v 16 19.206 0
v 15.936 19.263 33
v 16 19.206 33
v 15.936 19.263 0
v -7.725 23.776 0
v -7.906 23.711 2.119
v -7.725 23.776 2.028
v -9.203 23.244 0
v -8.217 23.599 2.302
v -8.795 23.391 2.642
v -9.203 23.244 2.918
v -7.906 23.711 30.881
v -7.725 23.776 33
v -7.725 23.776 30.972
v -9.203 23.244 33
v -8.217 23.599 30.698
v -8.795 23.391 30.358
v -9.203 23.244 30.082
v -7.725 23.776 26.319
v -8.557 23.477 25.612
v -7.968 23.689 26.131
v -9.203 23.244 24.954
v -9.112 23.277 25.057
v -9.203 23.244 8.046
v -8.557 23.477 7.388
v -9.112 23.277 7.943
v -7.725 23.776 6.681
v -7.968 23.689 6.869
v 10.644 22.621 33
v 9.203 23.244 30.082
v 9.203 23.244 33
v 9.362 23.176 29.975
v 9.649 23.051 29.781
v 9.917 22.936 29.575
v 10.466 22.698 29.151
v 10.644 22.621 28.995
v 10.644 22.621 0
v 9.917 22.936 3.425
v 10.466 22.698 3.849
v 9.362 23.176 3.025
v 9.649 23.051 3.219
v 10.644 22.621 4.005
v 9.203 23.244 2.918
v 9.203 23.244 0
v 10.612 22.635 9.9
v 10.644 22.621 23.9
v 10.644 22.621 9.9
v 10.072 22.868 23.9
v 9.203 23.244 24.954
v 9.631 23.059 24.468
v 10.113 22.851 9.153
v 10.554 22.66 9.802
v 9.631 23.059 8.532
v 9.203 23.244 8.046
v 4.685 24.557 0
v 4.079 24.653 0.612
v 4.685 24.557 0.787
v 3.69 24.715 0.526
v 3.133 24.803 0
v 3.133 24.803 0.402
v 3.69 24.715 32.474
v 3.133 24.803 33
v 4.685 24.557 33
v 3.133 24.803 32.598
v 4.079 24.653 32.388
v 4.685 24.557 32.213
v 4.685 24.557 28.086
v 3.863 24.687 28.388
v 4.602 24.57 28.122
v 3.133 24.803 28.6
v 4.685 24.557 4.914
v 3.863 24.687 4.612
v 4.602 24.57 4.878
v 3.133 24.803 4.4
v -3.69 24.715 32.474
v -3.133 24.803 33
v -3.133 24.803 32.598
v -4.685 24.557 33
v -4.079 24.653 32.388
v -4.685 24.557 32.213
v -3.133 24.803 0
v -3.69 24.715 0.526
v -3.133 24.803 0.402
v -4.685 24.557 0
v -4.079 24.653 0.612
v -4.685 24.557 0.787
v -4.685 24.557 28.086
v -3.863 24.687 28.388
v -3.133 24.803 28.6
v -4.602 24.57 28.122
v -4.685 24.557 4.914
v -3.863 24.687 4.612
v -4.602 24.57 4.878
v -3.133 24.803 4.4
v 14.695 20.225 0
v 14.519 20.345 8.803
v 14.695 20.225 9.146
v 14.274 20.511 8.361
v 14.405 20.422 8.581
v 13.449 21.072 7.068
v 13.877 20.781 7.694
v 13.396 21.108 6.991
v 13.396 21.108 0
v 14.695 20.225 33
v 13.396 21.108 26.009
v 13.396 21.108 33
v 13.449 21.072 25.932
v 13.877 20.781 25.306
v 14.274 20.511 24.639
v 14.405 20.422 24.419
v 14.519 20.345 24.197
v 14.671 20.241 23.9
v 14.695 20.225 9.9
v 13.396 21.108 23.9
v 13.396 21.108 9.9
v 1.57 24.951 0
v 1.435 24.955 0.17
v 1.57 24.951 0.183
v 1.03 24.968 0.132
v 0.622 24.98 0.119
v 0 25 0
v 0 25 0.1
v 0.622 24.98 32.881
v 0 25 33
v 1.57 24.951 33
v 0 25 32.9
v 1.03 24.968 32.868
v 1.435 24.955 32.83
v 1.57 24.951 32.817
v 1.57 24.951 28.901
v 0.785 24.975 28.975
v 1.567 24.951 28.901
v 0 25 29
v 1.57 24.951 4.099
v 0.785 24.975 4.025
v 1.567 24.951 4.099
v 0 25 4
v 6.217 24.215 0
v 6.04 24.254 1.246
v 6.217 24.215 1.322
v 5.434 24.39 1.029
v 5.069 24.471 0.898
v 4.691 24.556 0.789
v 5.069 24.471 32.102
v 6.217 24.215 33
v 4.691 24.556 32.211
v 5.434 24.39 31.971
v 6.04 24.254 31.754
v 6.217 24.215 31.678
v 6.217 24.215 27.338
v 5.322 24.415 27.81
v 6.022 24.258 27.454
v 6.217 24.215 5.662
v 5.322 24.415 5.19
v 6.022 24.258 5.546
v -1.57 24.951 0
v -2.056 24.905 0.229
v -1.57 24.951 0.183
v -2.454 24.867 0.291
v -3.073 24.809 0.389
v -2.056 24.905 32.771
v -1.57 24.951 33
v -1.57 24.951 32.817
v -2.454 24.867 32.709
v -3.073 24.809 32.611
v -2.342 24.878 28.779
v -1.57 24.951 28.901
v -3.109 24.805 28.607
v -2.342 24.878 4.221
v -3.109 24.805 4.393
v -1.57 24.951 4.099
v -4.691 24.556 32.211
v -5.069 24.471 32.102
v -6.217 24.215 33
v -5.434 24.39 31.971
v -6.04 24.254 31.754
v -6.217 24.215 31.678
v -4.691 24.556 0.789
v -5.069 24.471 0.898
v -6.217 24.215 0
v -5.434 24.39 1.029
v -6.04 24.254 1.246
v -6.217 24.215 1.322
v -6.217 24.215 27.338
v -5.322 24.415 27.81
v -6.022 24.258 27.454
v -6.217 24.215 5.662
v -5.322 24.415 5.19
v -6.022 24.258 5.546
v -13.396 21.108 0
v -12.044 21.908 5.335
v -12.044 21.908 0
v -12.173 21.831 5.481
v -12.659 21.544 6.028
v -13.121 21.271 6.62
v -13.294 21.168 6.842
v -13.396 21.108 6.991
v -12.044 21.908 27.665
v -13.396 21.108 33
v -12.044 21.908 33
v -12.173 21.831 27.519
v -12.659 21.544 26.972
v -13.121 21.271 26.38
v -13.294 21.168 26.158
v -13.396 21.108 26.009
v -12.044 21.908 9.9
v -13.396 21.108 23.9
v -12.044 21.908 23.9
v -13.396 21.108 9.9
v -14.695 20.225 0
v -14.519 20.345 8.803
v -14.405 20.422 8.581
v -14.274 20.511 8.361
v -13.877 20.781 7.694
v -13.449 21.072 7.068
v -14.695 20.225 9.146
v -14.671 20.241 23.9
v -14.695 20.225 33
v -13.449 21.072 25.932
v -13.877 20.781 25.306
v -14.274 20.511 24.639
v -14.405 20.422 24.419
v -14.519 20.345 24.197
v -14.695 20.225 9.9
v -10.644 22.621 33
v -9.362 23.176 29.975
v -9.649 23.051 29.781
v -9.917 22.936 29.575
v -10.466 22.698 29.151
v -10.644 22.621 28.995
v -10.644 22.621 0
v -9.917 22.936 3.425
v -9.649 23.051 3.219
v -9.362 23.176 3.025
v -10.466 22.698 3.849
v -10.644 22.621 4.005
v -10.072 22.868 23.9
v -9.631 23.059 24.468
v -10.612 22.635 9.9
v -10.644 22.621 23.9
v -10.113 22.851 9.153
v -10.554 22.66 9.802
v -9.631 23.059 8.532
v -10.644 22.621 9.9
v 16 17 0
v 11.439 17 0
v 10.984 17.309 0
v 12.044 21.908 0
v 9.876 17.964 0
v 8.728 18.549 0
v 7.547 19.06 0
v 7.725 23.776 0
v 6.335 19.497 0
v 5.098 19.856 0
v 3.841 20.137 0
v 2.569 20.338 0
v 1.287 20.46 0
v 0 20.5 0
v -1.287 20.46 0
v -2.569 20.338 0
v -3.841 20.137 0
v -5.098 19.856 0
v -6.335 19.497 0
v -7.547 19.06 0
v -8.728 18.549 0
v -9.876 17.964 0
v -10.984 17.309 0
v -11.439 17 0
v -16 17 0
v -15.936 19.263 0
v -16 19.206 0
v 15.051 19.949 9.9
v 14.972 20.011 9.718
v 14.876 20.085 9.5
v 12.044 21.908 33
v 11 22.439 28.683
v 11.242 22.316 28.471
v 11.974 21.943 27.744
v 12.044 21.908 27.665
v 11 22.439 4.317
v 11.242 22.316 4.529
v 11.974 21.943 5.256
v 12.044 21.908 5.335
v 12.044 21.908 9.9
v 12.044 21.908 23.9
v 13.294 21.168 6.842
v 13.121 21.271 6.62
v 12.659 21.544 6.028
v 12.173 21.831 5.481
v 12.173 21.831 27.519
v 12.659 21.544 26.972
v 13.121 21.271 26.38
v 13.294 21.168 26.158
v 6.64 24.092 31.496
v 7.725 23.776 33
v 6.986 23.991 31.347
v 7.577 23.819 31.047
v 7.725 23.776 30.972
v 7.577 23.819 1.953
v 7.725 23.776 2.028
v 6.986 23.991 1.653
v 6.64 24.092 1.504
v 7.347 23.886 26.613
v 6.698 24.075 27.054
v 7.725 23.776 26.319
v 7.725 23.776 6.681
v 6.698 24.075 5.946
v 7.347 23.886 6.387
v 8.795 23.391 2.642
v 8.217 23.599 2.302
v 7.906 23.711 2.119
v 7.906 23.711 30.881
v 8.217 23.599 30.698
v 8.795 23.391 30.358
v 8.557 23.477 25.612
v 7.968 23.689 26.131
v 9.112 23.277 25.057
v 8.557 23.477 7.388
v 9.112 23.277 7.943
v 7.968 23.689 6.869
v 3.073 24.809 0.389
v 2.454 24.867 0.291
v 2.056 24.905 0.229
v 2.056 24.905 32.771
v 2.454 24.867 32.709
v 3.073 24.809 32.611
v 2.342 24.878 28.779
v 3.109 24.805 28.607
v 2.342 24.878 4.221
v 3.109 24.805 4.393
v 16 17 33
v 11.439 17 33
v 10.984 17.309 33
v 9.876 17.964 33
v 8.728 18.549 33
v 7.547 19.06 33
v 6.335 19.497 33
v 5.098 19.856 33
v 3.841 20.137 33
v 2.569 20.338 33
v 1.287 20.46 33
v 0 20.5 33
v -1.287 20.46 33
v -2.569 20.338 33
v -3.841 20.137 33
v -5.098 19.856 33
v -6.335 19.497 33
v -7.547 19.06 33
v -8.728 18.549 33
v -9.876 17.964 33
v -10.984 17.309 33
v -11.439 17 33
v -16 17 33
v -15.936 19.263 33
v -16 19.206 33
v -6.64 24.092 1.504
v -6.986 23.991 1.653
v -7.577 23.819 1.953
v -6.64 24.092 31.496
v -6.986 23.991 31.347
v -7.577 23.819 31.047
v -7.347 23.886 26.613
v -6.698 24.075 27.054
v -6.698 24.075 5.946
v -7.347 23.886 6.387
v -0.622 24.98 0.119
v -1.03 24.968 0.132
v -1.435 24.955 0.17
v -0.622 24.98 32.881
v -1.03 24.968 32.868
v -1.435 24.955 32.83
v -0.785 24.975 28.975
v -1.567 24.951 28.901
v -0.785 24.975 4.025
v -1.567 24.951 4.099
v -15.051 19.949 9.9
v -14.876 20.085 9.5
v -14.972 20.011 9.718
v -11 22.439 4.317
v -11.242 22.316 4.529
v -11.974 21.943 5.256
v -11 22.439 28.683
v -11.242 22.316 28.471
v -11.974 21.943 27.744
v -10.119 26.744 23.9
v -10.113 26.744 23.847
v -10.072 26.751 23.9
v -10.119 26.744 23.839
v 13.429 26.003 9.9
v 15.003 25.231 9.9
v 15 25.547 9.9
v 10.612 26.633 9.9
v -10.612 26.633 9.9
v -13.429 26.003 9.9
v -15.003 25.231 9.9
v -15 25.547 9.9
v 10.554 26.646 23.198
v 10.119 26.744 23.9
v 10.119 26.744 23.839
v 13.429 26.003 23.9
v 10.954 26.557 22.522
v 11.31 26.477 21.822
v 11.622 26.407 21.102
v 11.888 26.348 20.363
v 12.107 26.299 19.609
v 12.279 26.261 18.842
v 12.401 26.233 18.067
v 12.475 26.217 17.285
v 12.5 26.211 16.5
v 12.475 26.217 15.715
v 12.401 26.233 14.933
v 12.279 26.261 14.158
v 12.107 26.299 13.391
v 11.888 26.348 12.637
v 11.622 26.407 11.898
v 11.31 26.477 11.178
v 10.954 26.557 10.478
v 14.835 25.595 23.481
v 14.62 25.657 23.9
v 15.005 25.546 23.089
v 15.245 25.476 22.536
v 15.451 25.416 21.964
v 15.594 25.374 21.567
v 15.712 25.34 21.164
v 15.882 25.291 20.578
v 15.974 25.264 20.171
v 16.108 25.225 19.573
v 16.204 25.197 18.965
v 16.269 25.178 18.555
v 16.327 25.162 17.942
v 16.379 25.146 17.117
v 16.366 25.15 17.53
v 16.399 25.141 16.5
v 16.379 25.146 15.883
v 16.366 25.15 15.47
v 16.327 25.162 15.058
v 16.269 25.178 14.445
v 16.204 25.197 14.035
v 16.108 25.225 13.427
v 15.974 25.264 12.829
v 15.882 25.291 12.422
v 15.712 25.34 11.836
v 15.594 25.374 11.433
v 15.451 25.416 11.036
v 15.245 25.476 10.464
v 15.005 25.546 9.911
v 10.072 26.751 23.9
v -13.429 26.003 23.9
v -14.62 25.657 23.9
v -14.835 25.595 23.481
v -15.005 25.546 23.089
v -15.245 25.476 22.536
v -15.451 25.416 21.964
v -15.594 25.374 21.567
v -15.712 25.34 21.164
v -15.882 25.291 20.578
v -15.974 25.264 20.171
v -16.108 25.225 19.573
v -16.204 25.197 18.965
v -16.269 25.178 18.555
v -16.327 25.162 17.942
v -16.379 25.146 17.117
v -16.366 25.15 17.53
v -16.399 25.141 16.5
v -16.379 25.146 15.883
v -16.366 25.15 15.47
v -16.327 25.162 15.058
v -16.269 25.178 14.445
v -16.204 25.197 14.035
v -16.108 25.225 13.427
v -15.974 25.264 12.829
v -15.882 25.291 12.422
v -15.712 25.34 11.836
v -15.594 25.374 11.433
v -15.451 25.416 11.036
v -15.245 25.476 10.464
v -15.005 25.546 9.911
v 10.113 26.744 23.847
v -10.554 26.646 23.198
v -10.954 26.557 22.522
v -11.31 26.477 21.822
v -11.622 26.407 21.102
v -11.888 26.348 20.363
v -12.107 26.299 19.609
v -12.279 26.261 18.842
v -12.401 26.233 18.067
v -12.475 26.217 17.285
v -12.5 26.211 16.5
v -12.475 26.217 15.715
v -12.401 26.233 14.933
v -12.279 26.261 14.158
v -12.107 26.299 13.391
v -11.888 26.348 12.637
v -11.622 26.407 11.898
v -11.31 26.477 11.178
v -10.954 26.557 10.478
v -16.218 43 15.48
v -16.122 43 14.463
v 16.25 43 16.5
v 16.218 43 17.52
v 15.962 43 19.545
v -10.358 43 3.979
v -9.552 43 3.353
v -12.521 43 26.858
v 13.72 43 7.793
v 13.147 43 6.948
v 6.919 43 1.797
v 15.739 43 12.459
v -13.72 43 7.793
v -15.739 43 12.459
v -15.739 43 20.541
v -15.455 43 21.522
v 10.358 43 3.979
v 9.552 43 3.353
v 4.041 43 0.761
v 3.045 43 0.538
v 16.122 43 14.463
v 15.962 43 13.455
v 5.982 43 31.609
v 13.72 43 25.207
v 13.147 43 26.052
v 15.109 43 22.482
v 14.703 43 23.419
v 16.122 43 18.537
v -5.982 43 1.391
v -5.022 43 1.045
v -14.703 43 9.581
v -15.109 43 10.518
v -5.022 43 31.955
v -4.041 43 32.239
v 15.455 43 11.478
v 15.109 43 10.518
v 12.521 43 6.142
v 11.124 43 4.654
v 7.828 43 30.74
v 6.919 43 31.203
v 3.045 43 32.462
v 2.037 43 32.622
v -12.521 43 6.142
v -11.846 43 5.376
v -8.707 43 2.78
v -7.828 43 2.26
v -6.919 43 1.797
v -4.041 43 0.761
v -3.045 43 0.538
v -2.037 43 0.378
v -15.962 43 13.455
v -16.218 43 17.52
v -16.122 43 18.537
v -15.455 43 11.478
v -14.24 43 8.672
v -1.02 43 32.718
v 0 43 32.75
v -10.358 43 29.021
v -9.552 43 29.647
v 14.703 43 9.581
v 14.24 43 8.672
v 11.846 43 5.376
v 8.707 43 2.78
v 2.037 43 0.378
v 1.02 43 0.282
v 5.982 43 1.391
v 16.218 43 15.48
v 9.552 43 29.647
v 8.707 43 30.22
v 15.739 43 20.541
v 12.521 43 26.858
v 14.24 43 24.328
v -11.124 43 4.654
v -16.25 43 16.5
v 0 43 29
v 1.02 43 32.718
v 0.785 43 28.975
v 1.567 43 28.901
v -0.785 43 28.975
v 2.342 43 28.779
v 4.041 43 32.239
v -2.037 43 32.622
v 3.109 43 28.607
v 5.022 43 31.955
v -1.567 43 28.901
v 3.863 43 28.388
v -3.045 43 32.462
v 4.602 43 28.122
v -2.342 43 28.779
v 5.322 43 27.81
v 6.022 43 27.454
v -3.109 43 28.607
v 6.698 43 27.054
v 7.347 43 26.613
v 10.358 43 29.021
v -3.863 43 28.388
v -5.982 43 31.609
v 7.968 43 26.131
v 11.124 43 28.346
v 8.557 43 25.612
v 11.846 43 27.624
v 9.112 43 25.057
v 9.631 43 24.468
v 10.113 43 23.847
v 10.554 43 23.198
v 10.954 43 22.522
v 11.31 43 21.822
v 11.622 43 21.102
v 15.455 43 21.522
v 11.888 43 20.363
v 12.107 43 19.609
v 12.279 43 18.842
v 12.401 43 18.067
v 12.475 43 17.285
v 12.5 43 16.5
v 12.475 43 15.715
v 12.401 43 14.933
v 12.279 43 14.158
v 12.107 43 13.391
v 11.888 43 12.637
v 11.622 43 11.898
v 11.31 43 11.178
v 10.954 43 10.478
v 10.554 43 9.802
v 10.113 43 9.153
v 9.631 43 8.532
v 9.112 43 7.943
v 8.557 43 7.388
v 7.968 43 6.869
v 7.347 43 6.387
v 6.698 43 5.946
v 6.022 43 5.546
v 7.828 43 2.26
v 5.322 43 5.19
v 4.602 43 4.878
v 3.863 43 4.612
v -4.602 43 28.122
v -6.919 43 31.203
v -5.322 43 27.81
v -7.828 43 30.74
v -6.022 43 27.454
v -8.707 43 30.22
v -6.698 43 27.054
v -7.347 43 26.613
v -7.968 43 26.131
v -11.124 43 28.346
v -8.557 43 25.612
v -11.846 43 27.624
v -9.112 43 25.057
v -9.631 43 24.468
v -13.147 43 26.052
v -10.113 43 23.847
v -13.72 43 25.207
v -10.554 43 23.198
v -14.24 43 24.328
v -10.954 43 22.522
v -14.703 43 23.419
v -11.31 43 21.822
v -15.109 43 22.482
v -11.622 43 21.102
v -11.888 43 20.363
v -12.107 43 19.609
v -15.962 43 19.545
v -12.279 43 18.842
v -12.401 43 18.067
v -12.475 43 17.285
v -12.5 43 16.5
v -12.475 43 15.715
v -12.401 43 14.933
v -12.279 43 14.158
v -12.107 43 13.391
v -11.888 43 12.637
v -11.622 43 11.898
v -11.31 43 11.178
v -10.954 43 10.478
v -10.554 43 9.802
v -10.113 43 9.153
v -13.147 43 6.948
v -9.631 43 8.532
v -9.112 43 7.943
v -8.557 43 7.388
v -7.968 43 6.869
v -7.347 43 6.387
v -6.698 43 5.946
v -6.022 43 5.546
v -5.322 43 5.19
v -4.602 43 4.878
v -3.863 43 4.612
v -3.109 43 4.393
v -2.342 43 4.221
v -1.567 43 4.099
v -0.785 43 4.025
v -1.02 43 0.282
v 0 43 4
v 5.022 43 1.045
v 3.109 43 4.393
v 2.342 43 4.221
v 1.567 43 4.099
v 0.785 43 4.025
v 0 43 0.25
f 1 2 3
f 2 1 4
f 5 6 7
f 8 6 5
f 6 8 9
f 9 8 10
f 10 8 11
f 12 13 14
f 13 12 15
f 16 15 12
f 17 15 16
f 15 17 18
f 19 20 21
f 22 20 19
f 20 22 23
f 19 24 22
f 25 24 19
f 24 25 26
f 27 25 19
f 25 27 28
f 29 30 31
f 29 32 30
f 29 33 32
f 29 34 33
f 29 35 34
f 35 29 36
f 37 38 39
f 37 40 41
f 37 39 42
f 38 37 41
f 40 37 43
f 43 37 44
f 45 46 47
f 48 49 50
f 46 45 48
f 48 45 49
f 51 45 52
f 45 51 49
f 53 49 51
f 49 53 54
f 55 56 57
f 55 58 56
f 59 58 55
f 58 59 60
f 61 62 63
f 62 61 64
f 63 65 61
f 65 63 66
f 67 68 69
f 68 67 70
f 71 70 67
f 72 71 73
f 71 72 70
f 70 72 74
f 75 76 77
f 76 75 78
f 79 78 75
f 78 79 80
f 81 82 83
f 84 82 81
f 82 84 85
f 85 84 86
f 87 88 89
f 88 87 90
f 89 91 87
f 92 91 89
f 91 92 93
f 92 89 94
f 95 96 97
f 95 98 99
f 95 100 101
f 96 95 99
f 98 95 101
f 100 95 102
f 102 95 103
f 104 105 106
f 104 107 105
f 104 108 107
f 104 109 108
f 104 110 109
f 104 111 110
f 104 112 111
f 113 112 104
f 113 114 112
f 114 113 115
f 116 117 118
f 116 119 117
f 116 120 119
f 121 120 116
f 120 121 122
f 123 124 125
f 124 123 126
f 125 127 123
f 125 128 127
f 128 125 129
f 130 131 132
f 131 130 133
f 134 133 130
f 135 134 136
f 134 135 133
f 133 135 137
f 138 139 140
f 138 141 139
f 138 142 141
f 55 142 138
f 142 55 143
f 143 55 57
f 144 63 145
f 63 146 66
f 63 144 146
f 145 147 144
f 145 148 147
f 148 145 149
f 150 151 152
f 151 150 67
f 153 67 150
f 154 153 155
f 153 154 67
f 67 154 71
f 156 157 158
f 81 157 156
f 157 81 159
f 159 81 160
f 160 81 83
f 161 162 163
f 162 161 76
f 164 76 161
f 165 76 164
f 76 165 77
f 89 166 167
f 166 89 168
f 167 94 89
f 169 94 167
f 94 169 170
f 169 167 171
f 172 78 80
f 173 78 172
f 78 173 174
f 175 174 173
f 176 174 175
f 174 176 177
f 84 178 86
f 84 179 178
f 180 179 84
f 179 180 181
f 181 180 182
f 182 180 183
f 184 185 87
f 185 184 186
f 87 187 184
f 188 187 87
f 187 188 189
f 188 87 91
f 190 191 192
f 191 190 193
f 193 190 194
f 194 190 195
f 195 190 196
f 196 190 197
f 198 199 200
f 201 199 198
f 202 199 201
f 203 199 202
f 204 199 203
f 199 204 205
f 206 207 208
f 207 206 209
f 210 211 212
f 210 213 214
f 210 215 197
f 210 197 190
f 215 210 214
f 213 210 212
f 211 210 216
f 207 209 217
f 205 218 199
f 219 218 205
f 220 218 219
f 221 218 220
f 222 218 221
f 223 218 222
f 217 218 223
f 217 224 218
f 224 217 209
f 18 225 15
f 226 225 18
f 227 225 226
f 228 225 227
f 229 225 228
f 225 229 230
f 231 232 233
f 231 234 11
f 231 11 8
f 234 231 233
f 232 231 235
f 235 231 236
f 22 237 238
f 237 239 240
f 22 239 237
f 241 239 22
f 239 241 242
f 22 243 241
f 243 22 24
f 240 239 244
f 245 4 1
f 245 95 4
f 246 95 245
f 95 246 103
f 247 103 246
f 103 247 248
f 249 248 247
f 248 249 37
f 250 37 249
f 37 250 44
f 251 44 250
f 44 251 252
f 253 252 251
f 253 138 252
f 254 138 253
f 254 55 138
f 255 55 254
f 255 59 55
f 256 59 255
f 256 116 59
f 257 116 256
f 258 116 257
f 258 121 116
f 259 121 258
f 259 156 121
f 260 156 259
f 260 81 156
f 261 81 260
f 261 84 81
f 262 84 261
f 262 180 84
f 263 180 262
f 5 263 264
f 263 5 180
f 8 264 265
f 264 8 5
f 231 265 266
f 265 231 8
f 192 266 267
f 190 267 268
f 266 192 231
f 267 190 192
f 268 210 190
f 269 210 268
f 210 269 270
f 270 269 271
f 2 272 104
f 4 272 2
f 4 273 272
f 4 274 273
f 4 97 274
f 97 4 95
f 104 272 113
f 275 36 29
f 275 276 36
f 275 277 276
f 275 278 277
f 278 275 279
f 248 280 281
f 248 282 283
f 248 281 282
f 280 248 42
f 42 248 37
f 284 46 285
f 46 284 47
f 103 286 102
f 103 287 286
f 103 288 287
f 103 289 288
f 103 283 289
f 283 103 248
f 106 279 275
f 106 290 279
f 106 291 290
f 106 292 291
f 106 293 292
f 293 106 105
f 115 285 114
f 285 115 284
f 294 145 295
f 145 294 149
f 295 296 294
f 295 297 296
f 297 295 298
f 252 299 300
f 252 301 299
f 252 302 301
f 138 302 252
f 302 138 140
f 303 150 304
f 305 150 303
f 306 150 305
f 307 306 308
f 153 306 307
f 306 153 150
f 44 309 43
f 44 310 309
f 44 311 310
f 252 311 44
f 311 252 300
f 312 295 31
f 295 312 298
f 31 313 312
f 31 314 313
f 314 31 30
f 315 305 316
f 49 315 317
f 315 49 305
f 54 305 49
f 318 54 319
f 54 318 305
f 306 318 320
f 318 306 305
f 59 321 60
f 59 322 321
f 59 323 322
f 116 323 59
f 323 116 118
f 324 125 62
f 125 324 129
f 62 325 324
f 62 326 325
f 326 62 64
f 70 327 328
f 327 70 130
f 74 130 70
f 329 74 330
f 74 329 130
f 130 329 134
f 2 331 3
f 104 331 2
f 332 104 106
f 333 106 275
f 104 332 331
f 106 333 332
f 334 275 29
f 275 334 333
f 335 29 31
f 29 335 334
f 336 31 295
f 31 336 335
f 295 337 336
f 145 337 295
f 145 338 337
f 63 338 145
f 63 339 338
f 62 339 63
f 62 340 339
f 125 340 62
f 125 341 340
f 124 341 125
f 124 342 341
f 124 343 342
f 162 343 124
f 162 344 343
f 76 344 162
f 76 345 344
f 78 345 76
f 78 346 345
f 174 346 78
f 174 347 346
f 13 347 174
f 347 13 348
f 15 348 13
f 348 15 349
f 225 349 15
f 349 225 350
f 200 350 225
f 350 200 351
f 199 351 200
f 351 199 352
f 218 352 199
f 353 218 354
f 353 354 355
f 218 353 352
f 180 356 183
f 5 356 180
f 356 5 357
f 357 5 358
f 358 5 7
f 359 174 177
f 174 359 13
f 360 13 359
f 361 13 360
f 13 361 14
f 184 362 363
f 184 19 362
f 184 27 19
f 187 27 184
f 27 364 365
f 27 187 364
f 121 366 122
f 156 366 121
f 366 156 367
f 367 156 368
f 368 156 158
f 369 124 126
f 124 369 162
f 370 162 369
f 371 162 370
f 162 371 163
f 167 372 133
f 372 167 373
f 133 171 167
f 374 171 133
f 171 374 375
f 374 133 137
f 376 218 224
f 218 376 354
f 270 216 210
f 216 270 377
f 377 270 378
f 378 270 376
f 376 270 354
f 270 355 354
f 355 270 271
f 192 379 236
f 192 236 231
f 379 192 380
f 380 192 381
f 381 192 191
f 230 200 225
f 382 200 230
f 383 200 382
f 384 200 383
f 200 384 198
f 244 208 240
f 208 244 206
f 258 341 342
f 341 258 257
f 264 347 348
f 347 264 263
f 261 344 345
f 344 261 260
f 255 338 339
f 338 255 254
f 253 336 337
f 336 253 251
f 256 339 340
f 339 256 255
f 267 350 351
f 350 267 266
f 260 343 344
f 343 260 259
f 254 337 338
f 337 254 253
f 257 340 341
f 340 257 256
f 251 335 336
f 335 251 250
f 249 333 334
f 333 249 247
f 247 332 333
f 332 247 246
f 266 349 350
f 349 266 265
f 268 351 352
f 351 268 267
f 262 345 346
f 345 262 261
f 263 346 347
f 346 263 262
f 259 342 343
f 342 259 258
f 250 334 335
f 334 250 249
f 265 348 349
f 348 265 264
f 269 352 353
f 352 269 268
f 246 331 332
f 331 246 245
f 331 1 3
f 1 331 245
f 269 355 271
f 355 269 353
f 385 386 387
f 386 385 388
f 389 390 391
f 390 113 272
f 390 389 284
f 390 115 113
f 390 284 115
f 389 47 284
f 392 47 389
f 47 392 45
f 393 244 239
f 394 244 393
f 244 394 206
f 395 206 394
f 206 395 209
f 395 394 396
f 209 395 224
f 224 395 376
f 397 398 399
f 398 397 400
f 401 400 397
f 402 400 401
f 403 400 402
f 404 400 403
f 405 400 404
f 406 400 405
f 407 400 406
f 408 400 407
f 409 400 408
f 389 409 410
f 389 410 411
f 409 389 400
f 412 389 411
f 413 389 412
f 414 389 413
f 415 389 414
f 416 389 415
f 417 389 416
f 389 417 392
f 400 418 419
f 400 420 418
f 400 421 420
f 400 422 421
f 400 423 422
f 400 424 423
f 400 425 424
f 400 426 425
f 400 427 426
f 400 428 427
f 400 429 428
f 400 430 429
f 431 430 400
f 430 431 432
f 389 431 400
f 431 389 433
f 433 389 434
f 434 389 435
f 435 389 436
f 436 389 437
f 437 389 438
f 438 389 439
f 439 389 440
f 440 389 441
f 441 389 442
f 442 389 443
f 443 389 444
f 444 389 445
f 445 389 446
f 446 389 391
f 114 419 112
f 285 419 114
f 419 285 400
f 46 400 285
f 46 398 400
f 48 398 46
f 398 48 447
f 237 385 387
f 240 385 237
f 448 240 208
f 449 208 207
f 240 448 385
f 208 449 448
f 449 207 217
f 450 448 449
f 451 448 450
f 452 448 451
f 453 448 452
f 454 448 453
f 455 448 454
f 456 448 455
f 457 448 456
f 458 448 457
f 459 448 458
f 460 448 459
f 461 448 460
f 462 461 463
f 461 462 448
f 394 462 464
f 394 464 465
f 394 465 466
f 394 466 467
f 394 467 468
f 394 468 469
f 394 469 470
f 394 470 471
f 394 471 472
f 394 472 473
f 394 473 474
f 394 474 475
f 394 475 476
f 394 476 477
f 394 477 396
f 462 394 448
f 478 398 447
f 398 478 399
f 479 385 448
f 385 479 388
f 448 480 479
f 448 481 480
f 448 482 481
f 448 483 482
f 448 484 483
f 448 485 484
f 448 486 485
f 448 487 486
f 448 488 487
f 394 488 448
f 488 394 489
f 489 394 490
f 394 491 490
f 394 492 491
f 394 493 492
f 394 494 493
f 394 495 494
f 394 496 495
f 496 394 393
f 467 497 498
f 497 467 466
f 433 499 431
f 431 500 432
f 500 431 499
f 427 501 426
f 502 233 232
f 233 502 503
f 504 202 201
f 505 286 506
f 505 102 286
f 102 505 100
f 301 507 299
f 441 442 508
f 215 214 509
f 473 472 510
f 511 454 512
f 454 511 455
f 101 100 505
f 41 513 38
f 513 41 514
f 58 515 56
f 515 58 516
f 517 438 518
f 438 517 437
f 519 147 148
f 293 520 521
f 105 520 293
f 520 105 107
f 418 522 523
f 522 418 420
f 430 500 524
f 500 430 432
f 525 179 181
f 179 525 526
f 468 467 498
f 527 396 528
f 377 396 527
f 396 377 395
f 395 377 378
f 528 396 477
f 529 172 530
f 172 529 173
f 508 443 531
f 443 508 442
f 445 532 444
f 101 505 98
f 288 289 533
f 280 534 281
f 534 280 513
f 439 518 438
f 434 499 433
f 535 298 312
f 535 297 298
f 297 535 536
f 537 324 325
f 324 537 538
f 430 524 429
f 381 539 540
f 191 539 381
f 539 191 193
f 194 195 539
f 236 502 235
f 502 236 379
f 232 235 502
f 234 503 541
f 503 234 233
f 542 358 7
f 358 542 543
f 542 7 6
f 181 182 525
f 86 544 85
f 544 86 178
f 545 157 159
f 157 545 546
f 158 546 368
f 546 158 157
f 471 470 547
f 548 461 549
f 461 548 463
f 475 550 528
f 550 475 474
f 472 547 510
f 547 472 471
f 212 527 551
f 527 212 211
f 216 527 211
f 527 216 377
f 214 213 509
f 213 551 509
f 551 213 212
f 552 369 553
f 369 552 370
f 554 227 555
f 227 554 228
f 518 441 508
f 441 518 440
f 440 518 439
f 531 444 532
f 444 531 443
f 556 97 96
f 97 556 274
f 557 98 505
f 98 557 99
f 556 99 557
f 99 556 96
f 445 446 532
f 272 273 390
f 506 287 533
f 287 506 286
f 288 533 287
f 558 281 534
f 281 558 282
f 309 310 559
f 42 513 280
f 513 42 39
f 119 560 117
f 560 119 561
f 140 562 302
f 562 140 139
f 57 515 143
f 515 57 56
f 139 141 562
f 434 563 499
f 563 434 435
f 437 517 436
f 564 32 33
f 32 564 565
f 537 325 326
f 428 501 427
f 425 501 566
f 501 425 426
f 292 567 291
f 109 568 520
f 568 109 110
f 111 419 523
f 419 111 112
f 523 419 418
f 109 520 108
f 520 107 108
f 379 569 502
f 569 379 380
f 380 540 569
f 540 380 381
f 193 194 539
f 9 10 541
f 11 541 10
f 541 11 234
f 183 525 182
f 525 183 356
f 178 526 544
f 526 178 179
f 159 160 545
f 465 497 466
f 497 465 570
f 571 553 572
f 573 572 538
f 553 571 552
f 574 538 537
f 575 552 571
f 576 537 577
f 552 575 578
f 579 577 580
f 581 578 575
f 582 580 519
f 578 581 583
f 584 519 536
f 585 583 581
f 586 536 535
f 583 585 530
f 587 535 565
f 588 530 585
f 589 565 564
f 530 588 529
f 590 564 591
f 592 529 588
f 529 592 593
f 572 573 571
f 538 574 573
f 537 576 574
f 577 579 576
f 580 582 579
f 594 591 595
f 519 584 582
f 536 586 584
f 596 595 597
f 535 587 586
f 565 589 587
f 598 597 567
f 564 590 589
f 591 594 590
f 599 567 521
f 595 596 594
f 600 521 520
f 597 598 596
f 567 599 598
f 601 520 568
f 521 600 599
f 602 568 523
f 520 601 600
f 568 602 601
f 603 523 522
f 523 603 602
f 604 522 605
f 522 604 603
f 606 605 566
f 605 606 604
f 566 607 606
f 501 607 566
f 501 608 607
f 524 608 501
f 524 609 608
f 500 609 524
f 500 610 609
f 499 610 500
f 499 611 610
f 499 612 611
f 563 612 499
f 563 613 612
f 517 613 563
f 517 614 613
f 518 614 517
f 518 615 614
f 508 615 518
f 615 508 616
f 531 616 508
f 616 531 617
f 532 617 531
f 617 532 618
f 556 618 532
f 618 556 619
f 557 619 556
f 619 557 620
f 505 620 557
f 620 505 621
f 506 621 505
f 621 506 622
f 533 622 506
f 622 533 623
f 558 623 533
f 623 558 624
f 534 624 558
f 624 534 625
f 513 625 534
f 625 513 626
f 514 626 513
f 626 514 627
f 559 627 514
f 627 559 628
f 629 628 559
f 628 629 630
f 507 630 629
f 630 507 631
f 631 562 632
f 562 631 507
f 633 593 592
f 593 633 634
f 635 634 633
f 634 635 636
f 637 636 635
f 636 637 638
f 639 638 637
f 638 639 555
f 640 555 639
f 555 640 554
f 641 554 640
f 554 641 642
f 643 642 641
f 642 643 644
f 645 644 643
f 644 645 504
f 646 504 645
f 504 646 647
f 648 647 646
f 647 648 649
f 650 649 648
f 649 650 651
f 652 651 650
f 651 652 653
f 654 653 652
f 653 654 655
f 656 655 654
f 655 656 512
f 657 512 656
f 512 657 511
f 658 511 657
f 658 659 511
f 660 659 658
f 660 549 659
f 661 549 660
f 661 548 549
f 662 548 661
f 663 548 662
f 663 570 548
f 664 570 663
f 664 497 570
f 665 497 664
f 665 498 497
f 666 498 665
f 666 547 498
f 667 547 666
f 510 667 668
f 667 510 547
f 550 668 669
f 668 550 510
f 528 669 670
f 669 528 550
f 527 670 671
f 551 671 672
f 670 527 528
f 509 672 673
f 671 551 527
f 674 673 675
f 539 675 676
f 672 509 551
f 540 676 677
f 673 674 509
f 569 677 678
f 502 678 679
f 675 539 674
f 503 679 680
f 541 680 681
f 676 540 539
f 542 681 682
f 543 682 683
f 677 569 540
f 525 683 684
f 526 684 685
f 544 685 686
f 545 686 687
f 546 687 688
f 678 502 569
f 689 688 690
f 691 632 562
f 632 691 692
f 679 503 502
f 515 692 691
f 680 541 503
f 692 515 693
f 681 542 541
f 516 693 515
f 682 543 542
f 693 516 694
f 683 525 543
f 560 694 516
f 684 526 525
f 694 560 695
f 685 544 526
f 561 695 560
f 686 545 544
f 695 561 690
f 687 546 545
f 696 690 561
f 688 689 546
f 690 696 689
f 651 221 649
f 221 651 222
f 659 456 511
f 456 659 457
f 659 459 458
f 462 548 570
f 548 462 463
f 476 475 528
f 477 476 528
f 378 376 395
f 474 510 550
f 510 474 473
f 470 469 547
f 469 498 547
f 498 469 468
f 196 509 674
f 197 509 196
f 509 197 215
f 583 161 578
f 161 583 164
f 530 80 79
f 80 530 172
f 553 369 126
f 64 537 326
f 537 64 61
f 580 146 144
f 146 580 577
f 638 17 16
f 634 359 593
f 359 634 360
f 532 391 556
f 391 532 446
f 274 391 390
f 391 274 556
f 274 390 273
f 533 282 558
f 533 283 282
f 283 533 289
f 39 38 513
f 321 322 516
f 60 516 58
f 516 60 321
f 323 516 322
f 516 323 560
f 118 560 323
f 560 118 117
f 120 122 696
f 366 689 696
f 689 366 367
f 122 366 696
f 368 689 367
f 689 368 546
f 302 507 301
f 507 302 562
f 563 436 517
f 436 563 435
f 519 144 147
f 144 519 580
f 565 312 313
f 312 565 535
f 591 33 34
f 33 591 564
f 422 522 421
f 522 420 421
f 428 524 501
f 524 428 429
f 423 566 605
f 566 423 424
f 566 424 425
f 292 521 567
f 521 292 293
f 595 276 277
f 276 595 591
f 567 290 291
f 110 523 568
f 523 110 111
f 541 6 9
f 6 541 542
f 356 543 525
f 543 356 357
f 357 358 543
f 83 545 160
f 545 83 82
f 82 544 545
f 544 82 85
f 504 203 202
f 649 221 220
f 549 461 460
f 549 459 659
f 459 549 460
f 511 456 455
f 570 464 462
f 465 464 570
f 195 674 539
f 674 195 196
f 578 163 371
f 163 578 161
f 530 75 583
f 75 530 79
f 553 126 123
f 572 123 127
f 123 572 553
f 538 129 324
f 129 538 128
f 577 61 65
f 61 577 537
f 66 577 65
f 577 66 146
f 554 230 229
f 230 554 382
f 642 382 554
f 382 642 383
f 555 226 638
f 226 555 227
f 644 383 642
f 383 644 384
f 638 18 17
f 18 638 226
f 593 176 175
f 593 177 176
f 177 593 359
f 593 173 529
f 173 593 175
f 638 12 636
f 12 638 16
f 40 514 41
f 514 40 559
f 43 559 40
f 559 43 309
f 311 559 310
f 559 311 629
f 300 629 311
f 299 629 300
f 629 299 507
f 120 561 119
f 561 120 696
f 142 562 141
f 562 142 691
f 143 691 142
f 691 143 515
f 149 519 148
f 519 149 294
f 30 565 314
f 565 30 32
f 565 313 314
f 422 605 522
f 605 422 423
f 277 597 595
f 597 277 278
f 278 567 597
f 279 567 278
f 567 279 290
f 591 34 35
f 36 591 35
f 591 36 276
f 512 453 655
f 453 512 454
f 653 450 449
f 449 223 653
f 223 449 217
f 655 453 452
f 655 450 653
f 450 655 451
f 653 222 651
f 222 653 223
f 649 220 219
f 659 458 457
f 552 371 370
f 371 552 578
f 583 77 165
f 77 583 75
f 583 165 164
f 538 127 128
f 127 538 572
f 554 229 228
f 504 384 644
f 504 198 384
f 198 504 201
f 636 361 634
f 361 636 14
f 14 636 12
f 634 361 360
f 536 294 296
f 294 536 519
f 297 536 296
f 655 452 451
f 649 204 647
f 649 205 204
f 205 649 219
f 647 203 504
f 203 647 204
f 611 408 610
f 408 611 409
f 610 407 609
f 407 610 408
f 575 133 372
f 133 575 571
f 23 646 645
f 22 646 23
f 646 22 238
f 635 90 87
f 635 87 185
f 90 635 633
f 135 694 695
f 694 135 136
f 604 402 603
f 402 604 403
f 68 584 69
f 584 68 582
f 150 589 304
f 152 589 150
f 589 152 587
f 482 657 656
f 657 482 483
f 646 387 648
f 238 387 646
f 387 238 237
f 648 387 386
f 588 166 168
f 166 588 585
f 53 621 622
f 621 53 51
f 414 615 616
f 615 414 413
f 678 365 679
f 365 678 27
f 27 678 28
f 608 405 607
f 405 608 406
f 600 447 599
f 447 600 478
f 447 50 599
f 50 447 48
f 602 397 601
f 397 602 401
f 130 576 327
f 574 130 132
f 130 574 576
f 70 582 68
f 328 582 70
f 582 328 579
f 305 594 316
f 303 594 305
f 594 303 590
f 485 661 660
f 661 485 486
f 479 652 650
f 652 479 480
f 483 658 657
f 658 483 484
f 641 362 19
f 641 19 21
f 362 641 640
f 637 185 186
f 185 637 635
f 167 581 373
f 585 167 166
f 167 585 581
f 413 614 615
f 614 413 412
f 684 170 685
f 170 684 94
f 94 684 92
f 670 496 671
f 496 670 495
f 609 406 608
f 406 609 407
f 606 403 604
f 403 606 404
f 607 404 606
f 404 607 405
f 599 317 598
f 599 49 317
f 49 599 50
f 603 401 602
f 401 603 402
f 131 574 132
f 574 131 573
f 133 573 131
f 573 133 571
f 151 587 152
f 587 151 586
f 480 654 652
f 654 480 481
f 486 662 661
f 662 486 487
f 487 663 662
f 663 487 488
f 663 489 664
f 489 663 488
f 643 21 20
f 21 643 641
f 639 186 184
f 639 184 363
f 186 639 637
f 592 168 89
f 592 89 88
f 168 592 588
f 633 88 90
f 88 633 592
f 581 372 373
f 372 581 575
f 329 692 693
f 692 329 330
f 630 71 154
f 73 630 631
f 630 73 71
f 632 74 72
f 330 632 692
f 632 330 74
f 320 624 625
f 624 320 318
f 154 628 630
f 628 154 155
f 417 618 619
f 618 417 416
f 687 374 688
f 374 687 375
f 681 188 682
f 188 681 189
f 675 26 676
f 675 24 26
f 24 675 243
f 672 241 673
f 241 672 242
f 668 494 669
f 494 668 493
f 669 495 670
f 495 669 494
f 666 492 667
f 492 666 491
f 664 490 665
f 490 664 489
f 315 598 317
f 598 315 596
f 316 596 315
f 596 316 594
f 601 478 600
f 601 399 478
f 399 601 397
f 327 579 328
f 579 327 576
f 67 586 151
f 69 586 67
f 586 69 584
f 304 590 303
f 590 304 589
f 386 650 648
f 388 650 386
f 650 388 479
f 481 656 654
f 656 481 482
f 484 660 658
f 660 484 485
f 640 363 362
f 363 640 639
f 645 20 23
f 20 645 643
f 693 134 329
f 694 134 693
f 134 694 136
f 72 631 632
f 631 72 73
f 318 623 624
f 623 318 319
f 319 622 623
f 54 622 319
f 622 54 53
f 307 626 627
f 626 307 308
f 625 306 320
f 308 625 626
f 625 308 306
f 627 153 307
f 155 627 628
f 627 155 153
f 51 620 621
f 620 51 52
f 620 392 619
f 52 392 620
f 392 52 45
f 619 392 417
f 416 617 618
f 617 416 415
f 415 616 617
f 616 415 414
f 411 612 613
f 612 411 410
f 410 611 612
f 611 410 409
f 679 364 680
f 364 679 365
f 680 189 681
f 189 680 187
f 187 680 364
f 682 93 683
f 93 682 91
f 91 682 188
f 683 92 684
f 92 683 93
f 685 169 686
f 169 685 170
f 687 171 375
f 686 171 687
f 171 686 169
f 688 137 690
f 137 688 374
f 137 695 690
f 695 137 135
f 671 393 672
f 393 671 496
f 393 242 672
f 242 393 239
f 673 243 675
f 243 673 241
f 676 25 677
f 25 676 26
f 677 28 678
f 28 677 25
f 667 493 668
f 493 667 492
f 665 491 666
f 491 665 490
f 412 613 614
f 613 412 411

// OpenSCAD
// rain gauge lower cover clamp stabilizer


$fn=100;

PR=16.5;    //enter pvc pipe radius here (for standard 1" PVC, PR=16.90; For 32mm PR=16.5)

//hose clamp rim
difference(){
    cylinder (PR*2,25,25); 
    translate([0,0,-1]) cylinder(50,20.5,20.5); 
    translate([-70,-183,-5]) cube([200,200,200]); 
    translate([16,-163,-5]) cube([200,200,200]); 
    translate([-66,-163,-5]) cube([50,200,200]); 
  }

//pipe insert
translate([0,-24,0]) difference(){
    translate([0,67,PR]) rotate([90,0,0]) cylinder(30,PR-0.25,PR);
    translate([0,75,PR]) rotate([90,0,0]) cylinder(70,PR-4,PR-4);
    translate([0,15.5,0]) cylinder (50,30,30);
    translate([0,12,-20]) rotate([0,0,0]) cylinder(60,35,35);
    //hose clamp slot
    translate([0,-2.3,(33.8-14)/2]) difference(){
        cylinder (14,54,54); 
        translate ([0,0,-1]) cylinder (50,42,42); 
        }

}
